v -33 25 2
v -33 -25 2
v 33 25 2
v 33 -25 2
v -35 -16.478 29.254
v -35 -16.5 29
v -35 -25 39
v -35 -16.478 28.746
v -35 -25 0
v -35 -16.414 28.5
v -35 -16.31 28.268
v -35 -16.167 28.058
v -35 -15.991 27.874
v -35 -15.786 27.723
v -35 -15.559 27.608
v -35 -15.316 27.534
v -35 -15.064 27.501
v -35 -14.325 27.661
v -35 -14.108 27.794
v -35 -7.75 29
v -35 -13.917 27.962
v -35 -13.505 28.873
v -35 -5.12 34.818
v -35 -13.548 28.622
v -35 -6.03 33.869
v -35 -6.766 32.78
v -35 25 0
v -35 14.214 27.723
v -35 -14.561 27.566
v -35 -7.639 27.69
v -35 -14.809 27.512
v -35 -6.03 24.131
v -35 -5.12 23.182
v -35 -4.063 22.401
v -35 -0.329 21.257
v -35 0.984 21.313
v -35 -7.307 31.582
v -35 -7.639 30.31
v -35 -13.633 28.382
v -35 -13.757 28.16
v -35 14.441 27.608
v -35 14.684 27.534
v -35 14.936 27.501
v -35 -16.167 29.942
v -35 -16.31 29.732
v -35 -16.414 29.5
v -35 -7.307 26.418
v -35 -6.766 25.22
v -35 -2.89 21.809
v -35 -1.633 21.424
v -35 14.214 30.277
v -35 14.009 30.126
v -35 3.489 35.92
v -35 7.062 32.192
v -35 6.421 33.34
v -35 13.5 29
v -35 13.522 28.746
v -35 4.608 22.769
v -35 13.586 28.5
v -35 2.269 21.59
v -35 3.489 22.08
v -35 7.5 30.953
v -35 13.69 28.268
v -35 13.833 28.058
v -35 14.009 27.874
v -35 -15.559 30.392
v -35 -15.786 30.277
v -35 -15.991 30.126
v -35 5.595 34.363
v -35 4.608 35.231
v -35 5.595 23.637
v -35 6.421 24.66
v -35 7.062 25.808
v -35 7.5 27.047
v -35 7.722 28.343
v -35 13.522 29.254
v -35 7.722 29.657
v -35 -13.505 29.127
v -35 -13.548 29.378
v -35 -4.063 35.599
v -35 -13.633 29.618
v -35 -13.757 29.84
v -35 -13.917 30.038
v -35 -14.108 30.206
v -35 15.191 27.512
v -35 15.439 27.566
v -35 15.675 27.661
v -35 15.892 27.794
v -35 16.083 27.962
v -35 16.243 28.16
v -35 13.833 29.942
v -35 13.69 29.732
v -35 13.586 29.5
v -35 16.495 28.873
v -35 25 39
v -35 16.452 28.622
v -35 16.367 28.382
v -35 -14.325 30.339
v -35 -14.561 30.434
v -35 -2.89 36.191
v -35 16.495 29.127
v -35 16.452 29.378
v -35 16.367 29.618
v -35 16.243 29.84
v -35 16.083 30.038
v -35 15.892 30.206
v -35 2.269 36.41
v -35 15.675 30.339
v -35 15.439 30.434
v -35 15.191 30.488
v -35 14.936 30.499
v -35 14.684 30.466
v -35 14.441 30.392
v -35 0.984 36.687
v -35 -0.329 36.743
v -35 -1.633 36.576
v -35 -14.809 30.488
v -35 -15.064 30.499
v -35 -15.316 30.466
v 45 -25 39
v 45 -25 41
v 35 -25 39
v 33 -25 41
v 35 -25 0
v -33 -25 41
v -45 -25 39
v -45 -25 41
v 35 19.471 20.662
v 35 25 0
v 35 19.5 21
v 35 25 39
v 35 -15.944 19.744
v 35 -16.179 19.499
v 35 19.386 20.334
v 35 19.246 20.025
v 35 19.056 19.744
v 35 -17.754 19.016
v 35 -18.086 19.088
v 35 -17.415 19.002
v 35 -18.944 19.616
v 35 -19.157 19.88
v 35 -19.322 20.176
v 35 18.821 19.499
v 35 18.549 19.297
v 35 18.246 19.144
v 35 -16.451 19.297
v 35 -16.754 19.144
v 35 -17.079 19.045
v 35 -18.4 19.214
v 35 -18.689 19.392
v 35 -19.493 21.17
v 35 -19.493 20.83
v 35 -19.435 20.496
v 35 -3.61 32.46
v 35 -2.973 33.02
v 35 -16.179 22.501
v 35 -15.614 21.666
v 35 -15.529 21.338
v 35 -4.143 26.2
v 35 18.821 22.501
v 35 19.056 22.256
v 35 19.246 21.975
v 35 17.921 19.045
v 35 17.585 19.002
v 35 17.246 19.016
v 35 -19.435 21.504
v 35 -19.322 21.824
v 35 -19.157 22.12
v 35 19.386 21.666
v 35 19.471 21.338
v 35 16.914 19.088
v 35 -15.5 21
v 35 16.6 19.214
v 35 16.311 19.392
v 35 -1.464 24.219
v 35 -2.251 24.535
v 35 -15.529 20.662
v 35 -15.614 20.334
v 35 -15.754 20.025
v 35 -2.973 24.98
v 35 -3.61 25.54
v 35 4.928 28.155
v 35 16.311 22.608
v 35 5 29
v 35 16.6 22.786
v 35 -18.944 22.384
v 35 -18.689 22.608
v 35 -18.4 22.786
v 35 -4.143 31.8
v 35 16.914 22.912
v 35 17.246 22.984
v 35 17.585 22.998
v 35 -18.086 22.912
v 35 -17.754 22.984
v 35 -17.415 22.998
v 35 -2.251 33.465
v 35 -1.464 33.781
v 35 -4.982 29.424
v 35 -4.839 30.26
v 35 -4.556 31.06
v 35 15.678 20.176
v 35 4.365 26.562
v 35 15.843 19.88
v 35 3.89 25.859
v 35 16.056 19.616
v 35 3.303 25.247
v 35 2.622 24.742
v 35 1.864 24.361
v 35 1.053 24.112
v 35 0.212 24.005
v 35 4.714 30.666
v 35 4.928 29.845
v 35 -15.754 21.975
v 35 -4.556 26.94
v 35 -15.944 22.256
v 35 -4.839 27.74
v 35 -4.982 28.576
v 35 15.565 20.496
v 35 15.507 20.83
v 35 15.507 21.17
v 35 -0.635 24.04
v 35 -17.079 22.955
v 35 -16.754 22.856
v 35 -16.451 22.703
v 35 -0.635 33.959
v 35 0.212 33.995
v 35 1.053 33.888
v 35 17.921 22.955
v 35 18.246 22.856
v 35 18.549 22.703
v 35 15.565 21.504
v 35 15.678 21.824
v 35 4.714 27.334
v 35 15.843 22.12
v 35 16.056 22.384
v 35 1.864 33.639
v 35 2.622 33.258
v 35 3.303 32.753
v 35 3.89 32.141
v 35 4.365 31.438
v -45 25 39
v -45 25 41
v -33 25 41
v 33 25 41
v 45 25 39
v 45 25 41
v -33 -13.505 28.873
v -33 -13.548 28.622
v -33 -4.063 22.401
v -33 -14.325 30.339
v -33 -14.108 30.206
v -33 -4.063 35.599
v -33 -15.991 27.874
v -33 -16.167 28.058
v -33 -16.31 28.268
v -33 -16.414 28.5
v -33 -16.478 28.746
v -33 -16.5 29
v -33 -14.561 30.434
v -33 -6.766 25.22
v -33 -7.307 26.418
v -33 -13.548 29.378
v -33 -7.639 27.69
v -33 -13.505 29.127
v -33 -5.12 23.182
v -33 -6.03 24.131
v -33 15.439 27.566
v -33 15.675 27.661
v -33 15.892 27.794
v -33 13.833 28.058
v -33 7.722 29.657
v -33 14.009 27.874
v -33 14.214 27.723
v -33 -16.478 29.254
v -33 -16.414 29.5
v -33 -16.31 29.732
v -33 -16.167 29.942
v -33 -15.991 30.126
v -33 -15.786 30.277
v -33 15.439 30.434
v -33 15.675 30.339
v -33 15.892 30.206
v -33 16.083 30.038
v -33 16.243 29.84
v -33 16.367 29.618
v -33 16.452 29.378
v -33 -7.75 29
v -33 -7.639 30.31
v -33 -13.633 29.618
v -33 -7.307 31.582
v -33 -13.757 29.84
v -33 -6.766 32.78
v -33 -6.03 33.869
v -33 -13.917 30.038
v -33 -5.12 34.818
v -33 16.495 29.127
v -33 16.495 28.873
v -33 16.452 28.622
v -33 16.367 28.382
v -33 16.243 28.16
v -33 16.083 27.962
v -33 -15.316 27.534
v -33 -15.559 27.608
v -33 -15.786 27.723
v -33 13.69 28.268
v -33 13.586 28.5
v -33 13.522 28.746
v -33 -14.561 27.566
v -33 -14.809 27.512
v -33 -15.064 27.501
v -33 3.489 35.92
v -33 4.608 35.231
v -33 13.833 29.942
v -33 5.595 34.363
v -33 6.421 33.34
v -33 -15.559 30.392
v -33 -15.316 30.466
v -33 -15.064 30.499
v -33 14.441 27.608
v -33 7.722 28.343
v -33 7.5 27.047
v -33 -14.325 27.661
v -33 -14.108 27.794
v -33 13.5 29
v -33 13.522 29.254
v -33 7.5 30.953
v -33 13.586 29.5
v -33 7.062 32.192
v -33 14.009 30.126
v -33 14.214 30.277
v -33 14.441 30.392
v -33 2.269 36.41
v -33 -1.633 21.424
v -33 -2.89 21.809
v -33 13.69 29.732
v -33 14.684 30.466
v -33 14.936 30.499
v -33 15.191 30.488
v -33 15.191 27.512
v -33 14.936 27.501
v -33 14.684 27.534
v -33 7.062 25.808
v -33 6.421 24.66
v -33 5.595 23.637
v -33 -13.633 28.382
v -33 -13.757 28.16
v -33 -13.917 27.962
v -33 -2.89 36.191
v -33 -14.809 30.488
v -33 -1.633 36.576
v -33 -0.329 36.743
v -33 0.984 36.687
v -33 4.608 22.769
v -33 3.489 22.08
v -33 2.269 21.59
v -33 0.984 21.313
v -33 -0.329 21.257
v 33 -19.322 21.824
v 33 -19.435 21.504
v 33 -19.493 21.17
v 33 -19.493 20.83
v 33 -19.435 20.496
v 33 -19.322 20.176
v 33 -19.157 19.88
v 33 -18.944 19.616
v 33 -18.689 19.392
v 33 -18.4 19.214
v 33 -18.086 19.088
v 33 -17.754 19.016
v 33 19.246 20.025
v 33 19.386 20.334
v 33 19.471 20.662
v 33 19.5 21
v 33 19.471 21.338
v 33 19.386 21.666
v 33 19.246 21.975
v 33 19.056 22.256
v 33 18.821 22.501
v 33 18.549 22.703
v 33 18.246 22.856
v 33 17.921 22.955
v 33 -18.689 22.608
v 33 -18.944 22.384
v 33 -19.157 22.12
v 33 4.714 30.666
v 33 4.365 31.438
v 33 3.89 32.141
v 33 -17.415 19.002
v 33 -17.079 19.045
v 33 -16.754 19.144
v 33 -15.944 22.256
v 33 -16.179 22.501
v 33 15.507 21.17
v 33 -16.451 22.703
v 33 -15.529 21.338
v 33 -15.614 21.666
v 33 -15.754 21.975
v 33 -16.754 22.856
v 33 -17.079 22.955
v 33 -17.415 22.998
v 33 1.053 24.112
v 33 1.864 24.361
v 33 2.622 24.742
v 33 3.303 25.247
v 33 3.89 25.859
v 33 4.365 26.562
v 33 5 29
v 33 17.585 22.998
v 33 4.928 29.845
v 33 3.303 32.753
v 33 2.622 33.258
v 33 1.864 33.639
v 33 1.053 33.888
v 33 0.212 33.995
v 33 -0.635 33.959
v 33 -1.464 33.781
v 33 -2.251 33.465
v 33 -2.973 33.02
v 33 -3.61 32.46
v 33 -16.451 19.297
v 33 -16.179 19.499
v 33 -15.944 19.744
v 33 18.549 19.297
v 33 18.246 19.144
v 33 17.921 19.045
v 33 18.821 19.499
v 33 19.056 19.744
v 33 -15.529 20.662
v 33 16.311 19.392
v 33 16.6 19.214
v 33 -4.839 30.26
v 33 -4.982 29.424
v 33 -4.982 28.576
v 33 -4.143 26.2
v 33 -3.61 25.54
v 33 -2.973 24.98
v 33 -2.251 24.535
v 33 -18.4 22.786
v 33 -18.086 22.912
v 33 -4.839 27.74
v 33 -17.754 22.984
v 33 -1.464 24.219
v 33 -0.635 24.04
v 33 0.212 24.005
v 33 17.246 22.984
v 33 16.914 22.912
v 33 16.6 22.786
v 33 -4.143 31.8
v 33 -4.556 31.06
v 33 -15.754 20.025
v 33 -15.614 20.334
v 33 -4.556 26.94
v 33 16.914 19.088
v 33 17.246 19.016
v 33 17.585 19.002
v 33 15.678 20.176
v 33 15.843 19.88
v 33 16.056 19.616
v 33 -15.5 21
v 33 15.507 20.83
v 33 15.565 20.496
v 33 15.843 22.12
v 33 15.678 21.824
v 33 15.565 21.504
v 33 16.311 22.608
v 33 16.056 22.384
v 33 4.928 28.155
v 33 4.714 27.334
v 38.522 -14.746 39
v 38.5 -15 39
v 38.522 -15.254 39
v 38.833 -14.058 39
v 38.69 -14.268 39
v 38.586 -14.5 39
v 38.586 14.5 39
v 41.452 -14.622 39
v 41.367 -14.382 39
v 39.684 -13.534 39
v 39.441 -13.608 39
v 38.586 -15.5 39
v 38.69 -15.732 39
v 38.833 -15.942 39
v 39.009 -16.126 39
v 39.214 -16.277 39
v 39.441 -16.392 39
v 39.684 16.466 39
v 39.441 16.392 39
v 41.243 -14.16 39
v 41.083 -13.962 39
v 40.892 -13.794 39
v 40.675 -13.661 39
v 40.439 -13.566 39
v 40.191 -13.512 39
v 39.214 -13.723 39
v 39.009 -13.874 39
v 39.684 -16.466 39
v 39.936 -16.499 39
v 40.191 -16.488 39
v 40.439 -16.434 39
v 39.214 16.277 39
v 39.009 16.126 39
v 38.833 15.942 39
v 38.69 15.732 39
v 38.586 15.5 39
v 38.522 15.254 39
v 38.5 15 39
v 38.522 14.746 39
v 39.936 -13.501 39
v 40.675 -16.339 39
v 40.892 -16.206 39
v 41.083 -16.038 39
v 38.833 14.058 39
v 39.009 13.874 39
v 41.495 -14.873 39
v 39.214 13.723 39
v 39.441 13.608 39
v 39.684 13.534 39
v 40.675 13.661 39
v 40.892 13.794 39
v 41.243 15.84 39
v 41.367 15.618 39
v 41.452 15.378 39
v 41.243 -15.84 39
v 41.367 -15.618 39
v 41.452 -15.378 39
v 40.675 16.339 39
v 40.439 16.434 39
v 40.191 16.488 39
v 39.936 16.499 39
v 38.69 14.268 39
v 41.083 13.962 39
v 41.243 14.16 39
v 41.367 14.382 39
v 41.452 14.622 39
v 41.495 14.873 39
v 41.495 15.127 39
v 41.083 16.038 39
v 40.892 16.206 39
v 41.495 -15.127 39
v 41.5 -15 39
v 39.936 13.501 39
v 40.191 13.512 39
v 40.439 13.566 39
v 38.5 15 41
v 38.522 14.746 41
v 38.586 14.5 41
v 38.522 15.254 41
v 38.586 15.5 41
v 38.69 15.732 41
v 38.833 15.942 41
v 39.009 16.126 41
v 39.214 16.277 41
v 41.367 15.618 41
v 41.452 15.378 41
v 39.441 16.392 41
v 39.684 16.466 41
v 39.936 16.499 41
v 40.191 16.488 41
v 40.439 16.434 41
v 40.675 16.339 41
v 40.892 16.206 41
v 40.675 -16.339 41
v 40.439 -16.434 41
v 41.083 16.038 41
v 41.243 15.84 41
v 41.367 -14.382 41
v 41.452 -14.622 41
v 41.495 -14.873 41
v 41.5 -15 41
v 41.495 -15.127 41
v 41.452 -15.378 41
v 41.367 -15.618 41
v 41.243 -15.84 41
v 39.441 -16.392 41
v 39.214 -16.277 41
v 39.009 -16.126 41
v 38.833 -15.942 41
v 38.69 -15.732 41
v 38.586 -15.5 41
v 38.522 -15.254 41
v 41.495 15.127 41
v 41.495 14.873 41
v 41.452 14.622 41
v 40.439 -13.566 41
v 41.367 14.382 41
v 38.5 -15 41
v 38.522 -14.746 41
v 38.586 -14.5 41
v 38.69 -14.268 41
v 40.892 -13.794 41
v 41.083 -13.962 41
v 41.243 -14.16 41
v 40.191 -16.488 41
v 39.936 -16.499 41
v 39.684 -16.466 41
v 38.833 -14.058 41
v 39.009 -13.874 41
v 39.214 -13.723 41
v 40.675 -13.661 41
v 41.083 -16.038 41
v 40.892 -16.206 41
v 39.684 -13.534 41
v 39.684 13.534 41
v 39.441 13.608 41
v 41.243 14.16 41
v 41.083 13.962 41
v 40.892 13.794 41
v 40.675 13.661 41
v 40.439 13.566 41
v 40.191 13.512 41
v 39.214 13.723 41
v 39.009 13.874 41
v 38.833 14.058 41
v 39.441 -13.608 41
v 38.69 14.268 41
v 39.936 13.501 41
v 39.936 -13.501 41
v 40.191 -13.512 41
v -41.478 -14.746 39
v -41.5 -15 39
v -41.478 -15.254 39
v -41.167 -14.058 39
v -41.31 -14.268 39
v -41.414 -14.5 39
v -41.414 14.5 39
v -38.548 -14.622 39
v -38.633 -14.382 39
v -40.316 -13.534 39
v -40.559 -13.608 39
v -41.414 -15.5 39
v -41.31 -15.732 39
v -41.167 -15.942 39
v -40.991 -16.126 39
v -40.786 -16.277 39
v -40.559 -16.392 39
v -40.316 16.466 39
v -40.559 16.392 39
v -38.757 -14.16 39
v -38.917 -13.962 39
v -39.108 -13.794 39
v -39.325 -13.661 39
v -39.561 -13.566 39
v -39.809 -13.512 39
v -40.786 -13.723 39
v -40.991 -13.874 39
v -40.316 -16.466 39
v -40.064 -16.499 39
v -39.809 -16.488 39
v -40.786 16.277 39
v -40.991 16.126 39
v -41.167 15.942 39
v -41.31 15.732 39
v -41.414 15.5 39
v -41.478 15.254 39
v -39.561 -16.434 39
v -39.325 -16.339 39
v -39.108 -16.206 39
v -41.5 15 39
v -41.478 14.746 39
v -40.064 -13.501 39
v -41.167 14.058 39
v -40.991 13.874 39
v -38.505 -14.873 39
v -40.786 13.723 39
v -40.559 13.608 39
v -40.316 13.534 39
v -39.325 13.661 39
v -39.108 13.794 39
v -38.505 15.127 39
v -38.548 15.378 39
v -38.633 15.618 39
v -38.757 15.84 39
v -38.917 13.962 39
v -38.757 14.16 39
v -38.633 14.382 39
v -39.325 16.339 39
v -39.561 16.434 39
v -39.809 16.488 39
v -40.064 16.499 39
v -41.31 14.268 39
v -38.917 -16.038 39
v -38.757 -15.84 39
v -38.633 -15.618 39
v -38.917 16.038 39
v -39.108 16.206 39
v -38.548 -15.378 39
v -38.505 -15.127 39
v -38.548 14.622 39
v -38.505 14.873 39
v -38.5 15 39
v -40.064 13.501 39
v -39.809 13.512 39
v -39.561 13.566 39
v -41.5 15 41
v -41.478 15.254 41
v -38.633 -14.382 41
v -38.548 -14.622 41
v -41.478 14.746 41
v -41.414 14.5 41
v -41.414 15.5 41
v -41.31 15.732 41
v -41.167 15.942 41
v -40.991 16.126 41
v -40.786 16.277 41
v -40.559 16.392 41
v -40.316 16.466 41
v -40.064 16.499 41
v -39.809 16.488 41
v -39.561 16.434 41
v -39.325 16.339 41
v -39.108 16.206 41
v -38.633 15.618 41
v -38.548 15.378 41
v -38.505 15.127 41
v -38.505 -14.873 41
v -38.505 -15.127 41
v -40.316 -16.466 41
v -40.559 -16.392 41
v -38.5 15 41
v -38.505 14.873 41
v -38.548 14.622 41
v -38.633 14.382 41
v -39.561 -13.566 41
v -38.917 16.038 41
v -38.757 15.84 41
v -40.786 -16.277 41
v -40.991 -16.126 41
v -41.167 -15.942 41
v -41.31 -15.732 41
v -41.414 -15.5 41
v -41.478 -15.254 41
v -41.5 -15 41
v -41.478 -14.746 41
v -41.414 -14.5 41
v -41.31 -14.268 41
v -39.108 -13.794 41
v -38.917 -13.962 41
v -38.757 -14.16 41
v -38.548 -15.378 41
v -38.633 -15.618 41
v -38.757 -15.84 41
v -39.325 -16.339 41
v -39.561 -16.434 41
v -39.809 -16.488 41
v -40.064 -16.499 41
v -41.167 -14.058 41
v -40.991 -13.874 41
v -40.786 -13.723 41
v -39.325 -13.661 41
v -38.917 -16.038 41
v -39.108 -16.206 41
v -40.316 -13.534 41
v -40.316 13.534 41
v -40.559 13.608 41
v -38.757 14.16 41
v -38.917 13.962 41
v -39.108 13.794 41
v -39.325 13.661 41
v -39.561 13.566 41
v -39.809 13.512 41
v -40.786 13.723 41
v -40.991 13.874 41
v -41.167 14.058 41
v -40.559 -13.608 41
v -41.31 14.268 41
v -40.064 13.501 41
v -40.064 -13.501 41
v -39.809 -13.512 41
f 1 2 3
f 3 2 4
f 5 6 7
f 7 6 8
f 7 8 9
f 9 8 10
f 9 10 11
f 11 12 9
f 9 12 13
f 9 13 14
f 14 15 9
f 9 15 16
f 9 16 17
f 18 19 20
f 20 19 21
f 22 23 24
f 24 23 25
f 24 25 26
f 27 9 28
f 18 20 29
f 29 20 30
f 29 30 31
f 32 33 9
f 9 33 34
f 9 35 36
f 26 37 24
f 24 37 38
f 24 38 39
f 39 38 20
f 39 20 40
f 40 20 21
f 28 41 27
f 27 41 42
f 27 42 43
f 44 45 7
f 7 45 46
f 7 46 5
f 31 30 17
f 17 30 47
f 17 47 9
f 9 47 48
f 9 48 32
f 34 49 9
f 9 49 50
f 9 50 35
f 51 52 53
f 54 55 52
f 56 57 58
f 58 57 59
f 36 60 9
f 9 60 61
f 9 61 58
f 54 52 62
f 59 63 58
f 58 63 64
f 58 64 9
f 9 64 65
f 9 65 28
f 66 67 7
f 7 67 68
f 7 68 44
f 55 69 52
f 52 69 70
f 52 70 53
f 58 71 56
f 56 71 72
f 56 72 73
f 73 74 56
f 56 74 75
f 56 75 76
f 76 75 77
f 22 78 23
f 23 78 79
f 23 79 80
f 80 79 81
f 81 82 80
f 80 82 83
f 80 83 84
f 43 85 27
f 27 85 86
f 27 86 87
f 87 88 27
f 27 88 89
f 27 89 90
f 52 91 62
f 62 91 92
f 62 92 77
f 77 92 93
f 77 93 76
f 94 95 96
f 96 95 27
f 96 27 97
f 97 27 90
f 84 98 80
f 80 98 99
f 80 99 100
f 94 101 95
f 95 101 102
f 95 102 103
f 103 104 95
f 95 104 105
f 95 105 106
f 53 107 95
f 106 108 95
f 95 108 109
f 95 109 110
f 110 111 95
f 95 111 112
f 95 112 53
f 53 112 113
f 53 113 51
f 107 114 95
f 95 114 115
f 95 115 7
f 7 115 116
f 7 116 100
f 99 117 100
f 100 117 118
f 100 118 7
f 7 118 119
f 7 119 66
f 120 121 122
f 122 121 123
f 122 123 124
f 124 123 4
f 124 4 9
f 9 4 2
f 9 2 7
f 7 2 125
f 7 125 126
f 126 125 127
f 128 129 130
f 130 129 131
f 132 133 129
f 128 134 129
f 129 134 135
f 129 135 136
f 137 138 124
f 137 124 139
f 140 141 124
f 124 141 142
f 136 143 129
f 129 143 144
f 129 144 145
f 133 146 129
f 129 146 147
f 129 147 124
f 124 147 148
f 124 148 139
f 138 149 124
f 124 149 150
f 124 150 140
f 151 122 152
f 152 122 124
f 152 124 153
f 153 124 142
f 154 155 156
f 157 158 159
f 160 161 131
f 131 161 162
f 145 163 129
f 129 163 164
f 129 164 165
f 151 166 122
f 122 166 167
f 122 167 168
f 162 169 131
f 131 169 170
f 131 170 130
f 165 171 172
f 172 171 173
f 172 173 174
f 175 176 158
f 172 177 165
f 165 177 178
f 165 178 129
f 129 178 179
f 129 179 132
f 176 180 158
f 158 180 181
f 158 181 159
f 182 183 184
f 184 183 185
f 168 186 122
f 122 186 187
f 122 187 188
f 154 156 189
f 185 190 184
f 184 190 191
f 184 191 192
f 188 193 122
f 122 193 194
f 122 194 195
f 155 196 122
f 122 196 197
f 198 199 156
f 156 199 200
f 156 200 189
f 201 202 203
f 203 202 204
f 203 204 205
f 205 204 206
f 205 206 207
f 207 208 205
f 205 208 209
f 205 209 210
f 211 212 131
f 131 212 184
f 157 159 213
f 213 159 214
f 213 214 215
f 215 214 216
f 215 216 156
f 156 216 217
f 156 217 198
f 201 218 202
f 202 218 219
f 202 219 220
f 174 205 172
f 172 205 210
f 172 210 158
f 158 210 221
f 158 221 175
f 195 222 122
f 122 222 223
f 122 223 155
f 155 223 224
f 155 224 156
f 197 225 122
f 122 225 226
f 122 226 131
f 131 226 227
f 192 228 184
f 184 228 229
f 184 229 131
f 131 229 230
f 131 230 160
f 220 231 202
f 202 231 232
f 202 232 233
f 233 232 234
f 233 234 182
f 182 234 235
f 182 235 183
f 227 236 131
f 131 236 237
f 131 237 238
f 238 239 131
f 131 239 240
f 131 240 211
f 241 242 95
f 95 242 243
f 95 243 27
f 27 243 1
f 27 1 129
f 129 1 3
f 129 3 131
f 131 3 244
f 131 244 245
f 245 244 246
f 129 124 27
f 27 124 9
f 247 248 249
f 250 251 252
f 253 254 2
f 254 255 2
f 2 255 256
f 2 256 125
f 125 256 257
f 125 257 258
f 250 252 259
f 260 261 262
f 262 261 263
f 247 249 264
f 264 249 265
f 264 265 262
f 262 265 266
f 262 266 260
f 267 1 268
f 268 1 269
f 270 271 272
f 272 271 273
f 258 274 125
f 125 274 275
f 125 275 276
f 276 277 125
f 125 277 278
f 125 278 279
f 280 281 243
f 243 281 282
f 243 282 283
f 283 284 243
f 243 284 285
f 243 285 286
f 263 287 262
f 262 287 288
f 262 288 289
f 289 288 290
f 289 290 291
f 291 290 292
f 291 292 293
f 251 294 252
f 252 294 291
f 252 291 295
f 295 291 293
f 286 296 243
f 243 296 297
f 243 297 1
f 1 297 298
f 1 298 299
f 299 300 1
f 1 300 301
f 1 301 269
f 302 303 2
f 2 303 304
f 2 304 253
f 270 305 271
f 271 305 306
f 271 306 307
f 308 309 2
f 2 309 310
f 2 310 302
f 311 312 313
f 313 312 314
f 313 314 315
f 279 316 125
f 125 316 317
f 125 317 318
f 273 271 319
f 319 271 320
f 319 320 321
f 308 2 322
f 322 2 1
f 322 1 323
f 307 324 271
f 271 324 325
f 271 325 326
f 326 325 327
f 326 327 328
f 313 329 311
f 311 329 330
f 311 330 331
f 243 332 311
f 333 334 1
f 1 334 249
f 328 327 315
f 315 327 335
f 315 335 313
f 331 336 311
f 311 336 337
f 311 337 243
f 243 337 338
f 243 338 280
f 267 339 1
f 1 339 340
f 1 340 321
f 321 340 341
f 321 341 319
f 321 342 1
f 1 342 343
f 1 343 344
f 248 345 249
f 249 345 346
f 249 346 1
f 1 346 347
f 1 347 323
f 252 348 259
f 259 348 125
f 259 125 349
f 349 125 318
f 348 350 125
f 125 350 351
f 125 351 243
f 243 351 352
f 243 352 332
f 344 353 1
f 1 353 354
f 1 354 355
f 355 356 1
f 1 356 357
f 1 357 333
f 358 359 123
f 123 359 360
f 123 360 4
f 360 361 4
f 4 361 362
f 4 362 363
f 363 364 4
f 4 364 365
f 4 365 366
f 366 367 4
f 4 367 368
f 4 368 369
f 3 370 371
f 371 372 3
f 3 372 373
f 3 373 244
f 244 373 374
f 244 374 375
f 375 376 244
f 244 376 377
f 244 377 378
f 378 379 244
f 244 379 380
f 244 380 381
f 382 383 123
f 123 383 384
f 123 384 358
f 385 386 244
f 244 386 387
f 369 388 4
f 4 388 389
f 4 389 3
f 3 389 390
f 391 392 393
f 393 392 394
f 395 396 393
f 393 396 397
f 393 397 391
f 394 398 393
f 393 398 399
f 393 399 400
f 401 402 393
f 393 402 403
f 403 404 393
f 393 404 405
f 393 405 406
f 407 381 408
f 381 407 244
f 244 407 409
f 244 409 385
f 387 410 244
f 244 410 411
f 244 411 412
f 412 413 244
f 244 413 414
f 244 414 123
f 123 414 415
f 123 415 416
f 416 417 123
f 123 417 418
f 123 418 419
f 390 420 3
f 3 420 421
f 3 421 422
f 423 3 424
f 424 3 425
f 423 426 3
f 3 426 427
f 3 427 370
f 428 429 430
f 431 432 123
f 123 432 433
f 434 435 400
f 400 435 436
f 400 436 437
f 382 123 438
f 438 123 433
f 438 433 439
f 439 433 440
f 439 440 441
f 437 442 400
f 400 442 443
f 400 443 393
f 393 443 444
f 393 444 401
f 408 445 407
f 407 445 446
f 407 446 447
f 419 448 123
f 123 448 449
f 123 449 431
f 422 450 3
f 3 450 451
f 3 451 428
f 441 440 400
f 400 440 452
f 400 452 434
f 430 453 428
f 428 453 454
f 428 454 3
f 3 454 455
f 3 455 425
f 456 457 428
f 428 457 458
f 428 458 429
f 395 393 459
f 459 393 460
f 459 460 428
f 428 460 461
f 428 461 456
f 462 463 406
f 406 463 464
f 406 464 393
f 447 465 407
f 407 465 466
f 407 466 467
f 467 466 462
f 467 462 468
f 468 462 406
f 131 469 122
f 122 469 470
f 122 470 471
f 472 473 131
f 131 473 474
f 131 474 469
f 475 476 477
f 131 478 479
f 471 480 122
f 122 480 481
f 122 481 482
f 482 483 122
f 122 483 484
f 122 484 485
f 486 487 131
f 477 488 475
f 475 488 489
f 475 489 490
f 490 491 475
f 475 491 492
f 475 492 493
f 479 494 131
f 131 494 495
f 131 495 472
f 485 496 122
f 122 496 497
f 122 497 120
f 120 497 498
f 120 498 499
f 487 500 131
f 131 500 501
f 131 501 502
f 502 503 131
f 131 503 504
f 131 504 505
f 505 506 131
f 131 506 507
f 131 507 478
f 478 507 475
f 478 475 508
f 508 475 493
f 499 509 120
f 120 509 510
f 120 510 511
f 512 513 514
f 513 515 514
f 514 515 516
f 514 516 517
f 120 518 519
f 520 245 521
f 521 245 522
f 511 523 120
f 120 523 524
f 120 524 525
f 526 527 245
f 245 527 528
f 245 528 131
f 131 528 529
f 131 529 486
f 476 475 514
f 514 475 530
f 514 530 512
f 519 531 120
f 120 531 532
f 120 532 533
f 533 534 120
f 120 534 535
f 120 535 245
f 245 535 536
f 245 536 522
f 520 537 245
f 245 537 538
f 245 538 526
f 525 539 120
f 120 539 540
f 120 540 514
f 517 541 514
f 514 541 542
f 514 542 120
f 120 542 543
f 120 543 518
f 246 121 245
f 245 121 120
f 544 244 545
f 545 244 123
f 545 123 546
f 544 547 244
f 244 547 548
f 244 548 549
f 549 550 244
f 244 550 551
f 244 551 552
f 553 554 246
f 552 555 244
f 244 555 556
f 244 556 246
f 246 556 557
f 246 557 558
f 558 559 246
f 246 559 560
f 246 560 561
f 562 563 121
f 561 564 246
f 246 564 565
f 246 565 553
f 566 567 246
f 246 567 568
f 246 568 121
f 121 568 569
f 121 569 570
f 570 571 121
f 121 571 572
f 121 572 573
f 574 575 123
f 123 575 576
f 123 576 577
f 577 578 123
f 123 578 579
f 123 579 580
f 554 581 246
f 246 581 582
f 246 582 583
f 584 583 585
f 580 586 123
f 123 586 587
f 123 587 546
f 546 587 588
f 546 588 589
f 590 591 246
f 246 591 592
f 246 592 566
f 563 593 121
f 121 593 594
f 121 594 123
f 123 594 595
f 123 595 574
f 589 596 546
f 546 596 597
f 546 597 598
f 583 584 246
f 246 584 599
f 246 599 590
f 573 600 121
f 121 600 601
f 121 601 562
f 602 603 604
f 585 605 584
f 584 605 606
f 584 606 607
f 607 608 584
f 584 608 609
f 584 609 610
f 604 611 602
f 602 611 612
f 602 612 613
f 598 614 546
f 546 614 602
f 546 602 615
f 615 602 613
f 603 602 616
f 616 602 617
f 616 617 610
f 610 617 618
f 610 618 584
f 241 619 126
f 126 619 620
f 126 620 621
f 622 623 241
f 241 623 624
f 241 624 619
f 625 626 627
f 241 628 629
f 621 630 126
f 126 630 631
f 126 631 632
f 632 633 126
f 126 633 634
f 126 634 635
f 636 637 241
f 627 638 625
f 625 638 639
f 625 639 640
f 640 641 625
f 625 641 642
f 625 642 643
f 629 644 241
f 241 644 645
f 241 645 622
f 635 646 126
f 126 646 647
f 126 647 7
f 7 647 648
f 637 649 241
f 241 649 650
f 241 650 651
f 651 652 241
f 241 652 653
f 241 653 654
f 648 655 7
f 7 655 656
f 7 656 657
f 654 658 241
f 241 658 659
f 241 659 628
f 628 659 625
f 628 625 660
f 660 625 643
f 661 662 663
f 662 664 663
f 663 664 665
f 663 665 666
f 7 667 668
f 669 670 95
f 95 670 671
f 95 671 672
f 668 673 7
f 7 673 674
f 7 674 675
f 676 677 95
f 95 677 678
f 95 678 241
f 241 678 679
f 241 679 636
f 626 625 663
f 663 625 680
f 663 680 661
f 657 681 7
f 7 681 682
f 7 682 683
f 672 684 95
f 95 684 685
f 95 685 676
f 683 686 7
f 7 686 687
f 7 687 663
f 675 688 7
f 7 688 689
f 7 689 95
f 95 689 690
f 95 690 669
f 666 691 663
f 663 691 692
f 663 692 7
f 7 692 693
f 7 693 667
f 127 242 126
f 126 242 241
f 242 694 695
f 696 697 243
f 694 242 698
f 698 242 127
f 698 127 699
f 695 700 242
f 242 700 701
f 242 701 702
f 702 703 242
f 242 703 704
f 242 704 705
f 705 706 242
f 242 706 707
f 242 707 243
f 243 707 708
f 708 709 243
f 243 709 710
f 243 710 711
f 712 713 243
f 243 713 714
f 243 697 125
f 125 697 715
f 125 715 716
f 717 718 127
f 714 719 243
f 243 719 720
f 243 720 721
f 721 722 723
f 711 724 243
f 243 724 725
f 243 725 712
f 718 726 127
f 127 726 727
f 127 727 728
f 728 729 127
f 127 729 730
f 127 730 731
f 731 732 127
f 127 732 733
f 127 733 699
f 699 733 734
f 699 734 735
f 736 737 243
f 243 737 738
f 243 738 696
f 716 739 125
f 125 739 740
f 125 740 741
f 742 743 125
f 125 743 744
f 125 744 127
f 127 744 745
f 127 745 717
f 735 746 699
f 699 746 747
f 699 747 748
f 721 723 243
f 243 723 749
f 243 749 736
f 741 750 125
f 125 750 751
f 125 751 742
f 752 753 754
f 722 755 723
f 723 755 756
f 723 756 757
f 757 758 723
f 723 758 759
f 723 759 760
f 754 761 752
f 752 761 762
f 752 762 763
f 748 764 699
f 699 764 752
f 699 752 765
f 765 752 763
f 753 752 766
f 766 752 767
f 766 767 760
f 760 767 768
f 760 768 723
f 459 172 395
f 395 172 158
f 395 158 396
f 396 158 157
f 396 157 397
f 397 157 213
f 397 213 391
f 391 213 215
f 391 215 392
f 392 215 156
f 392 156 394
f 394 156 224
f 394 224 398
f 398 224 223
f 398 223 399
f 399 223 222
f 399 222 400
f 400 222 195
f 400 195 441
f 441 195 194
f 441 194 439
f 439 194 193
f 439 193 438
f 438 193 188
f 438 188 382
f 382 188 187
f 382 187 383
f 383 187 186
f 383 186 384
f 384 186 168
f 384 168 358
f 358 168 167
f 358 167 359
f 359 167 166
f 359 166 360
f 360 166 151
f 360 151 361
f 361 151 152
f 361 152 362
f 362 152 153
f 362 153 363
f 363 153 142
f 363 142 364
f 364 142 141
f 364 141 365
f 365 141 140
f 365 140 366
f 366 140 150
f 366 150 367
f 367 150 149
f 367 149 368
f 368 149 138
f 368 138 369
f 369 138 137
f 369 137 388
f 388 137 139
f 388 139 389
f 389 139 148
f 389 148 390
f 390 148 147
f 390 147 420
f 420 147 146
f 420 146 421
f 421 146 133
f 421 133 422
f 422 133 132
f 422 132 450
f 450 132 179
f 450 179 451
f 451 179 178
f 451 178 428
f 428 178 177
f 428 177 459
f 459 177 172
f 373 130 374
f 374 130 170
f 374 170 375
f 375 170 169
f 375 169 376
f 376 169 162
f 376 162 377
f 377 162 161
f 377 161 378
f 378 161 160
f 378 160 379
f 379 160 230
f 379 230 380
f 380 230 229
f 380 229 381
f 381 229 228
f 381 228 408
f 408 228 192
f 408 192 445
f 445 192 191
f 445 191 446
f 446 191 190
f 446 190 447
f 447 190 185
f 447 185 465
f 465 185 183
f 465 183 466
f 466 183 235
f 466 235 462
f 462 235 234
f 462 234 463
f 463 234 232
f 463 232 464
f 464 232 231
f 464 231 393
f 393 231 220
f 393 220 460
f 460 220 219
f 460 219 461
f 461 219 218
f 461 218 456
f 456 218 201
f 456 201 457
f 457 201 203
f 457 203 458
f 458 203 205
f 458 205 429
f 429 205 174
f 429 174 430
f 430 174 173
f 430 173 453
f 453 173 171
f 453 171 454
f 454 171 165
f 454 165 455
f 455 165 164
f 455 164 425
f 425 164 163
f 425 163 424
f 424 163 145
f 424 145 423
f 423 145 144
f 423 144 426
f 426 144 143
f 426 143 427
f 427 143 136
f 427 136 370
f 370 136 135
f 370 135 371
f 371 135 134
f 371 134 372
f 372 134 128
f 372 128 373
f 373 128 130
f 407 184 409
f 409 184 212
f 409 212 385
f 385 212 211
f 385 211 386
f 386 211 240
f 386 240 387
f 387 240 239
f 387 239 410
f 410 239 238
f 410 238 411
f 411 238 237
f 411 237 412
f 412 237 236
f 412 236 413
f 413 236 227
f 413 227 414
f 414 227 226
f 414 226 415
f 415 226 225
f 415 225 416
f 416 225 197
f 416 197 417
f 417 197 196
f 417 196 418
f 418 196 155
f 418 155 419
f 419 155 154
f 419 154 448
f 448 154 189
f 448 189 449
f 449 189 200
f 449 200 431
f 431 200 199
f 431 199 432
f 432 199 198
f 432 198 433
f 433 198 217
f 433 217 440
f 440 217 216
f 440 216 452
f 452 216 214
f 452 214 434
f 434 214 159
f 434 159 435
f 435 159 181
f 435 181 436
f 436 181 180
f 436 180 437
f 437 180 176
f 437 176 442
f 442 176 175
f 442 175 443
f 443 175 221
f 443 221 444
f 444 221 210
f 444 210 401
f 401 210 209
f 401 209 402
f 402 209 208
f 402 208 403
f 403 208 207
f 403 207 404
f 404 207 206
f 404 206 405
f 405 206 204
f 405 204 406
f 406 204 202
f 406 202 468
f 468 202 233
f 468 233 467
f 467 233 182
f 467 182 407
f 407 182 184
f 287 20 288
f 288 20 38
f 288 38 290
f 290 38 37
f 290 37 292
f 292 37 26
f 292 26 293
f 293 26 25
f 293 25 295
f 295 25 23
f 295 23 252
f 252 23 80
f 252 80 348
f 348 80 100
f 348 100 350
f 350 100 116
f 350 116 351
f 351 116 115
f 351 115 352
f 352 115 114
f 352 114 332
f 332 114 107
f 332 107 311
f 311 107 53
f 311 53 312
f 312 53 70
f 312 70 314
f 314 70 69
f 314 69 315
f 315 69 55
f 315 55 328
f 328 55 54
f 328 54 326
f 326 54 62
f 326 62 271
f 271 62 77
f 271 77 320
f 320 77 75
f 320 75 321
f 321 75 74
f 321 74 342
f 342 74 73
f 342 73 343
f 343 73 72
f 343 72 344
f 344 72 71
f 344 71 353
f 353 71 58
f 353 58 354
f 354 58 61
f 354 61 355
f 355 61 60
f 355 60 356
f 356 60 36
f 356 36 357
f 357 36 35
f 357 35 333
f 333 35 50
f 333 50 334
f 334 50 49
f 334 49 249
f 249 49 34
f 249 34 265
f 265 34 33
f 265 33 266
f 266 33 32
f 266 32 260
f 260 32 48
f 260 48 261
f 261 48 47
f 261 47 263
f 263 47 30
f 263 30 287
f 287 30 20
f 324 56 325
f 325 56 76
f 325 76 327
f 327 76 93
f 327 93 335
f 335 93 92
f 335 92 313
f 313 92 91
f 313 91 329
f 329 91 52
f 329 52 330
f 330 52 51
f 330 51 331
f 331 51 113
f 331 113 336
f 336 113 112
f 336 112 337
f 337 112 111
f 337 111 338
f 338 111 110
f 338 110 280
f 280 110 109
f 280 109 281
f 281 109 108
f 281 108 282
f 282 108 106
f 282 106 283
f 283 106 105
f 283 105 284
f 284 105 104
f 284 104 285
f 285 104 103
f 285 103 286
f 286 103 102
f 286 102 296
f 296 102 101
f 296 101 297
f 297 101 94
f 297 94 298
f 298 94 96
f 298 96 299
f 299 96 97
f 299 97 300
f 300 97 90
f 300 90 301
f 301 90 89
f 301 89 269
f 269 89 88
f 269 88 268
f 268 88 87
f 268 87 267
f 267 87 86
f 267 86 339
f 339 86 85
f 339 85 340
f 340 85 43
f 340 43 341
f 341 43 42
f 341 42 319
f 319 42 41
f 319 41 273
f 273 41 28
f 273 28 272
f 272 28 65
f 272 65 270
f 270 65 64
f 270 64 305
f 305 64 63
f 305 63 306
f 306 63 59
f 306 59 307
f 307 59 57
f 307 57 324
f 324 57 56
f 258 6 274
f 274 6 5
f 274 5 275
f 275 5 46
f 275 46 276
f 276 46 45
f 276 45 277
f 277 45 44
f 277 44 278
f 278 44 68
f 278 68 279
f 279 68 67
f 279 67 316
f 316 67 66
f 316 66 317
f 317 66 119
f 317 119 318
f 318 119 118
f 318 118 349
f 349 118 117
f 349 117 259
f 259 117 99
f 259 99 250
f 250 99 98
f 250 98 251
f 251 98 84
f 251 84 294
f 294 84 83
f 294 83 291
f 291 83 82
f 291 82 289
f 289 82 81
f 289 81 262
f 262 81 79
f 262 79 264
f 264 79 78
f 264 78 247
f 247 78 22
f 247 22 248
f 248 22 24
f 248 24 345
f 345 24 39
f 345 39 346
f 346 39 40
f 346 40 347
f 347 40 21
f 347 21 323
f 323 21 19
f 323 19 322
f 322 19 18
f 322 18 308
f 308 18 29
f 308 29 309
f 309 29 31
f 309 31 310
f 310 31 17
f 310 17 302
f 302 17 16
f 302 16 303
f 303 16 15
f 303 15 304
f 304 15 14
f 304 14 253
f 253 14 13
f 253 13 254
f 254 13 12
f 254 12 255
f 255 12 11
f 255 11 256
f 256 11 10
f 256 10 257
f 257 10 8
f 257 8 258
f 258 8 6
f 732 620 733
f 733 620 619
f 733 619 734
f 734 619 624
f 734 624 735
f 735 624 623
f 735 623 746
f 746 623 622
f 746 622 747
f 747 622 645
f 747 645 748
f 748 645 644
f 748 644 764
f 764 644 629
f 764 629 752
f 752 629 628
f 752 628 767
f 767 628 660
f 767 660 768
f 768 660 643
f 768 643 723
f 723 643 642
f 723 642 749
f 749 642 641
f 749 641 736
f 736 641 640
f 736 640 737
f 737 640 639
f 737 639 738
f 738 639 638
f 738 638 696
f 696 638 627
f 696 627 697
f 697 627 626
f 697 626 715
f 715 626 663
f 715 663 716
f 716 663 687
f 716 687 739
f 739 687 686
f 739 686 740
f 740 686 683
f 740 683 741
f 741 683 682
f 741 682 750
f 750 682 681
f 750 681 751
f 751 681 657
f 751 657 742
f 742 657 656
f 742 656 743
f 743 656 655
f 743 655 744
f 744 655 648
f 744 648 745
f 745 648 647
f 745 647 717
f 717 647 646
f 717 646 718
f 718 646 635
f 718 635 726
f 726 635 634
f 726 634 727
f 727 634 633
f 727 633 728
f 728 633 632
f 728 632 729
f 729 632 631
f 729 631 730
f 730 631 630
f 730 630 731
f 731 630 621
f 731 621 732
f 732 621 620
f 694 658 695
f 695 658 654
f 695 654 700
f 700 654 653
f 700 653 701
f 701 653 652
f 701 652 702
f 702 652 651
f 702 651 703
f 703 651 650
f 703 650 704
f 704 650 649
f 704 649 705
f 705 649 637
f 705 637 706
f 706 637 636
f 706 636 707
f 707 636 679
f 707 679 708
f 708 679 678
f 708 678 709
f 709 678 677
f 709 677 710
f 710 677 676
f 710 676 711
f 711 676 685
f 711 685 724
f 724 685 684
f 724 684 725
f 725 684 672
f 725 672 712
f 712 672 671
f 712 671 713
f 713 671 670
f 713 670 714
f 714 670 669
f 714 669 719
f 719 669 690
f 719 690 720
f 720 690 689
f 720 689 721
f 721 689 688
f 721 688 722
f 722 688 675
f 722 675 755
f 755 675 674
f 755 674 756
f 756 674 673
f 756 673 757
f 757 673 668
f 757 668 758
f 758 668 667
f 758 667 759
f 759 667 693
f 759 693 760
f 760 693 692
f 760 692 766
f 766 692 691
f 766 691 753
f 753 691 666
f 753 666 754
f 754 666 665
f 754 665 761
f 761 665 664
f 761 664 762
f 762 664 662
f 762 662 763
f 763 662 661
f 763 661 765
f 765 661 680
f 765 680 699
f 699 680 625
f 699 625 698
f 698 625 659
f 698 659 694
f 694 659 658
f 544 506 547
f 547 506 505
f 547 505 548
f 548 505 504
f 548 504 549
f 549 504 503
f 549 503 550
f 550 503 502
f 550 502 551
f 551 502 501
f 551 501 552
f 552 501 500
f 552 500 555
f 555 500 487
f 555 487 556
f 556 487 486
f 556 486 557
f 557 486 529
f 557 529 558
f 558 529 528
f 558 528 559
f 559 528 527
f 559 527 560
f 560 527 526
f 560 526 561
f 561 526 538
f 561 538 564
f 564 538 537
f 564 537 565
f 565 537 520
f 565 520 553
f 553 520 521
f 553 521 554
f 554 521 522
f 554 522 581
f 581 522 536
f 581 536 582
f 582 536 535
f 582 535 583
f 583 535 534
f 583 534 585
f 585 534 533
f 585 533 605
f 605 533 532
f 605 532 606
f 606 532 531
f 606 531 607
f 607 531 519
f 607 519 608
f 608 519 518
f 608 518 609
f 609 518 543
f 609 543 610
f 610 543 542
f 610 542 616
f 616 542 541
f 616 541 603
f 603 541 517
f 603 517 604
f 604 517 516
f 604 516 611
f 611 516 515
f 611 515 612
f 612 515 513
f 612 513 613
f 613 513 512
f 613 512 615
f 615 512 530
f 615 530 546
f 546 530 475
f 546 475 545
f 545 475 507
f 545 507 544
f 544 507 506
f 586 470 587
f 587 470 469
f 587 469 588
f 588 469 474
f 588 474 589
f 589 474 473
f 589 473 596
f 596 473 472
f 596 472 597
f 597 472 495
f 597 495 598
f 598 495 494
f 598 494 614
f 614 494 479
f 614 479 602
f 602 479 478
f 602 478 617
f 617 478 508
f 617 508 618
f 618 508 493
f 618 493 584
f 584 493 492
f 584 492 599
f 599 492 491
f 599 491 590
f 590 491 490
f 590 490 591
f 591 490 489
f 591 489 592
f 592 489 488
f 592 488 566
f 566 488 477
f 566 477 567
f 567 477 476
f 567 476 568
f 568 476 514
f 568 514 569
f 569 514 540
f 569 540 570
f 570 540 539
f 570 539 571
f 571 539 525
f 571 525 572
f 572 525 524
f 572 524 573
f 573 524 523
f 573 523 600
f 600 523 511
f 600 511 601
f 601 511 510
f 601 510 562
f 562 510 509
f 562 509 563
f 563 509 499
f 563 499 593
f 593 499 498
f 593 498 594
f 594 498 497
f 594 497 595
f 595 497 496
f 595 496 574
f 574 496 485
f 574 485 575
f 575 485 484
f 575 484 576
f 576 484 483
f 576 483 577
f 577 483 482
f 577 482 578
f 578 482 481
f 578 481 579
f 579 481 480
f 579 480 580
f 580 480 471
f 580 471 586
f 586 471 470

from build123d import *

# Parameters (mm, degrees)
SKETCH1_W           = 70
SKETCH1_H           = 50
BOSS_EXTRUDE1_DEPTH = 2
SKETCH2_W           = 2
SKETCH2_H           = 50
BOSS_EXTRUDE2_DEPTH = 37
SKETCH3_W           = 12
SKETCH3_H           = 50
BOSS_EXTRUDE3_DEPTH = 2
SKETCH4_R           = 5
SKETCH4_R_2         = 2
CUT_EXTRUDE1_DEPTH  = 2
SKETCH5_R           = 7.75
SKETCH5_R_2         = 1.5
CUT_EXTRUDE2_DEPTH  = 2
SKETCH6_R           = 1.5
CUT_EXTRUDE3_DEPTH  = 2


with BuildPart() as part:
    # Sketch1 → Boss-Extrude1 (new body)
    with BuildSketch(Plane.XY):
        Rectangle(SKETCH1_W, SKETCH1_H)
    extrude(amount=BOSS_EXTRUDE1_DEPTH)

    # Sketch2 → Boss-Extrude2 (add)
    with BuildSketch(Plane.XY.offset(2)):
        with Locations((34, 0)):
            Rectangle(SKETCH2_W, SKETCH2_H)
        with Locations((-34, 0)):
            Rectangle(SKETCH2_W, SKETCH2_H)
    extrude(amount=BOSS_EXTRUDE2_DEPTH)

    # Sketch3 → Boss-Extrude3 (add)
    with BuildSketch(Plane.XY.offset(39)):
        with Locations((39, 0)):
            Rectangle(SKETCH3_W, SKETCH3_H)
        with Locations((-39, 0)):
            Rectangle(SKETCH3_W, SKETCH3_H)
    extrude(amount=BOSS_EXTRUDE3_DEPTH)

    # Sketch4 → Cut-Extrude1 (cut)
    with BuildSketch(Plane(origin=(35, 0, 0), x_dir=(0, 0, -1), z_dir=(1, 0, 0))):
        with Locations(Location((-29, 0, 0), (0, 0, 90))):
            Circle(SKETCH4_R)
        with Locations(Location((-21, 17.5, 0), (0, 0, 90))):
            Circle(SKETCH4_R_2)
        with Locations(Location((-21, -17.5, 0), (0, 0, 90))):
            Circle(SKETCH4_R_2)
    extrude(amount=-CUT_EXTRUDE1_DEPTH, mode=Mode.SUBTRACT)

    # Sketch5 → Cut-Extrude2 (cut)
    with BuildSketch(Plane.ZY.offset(35)):
        with Locations(Location((29, 0, 0), (0, 0, 270))):
            Circle(SKETCH5_R)
        with Locations(Location((29, 15, 0), (0, 0, 270))):
            Circle(SKETCH5_R_2)
        with Locations(Location((29, -15, 0), (0, 0, 270))):
            Circle(SKETCH5_R_2)
    extrude(amount=-CUT_EXTRUDE2_DEPTH, mode=Mode.SUBTRACT)

    # Sketch6 → Cut-Extrude3 (cut)
    with BuildSketch(Plane(origin=(0, 0, 39), x_dir=(-1, 0, 0), z_dir=(0, 0, -1))):
        with Locations((-40, 15)):
            Circle(SKETCH6_R)
        with Locations(Location((-40, -15, 0), (0, 0, 180))):
            Circle(SKETCH6_R)
        with Locations((40, -15)):
            Circle(SKETCH6_R)
        with Locations(Location((40, 15, 0), (0, 0, 180))):
            Circle(SKETCH6_R)
    extrude(amount=-CUT_EXTRUDE3_DEPTH, mode=Mode.SUBTRACT)


solid = part.part
